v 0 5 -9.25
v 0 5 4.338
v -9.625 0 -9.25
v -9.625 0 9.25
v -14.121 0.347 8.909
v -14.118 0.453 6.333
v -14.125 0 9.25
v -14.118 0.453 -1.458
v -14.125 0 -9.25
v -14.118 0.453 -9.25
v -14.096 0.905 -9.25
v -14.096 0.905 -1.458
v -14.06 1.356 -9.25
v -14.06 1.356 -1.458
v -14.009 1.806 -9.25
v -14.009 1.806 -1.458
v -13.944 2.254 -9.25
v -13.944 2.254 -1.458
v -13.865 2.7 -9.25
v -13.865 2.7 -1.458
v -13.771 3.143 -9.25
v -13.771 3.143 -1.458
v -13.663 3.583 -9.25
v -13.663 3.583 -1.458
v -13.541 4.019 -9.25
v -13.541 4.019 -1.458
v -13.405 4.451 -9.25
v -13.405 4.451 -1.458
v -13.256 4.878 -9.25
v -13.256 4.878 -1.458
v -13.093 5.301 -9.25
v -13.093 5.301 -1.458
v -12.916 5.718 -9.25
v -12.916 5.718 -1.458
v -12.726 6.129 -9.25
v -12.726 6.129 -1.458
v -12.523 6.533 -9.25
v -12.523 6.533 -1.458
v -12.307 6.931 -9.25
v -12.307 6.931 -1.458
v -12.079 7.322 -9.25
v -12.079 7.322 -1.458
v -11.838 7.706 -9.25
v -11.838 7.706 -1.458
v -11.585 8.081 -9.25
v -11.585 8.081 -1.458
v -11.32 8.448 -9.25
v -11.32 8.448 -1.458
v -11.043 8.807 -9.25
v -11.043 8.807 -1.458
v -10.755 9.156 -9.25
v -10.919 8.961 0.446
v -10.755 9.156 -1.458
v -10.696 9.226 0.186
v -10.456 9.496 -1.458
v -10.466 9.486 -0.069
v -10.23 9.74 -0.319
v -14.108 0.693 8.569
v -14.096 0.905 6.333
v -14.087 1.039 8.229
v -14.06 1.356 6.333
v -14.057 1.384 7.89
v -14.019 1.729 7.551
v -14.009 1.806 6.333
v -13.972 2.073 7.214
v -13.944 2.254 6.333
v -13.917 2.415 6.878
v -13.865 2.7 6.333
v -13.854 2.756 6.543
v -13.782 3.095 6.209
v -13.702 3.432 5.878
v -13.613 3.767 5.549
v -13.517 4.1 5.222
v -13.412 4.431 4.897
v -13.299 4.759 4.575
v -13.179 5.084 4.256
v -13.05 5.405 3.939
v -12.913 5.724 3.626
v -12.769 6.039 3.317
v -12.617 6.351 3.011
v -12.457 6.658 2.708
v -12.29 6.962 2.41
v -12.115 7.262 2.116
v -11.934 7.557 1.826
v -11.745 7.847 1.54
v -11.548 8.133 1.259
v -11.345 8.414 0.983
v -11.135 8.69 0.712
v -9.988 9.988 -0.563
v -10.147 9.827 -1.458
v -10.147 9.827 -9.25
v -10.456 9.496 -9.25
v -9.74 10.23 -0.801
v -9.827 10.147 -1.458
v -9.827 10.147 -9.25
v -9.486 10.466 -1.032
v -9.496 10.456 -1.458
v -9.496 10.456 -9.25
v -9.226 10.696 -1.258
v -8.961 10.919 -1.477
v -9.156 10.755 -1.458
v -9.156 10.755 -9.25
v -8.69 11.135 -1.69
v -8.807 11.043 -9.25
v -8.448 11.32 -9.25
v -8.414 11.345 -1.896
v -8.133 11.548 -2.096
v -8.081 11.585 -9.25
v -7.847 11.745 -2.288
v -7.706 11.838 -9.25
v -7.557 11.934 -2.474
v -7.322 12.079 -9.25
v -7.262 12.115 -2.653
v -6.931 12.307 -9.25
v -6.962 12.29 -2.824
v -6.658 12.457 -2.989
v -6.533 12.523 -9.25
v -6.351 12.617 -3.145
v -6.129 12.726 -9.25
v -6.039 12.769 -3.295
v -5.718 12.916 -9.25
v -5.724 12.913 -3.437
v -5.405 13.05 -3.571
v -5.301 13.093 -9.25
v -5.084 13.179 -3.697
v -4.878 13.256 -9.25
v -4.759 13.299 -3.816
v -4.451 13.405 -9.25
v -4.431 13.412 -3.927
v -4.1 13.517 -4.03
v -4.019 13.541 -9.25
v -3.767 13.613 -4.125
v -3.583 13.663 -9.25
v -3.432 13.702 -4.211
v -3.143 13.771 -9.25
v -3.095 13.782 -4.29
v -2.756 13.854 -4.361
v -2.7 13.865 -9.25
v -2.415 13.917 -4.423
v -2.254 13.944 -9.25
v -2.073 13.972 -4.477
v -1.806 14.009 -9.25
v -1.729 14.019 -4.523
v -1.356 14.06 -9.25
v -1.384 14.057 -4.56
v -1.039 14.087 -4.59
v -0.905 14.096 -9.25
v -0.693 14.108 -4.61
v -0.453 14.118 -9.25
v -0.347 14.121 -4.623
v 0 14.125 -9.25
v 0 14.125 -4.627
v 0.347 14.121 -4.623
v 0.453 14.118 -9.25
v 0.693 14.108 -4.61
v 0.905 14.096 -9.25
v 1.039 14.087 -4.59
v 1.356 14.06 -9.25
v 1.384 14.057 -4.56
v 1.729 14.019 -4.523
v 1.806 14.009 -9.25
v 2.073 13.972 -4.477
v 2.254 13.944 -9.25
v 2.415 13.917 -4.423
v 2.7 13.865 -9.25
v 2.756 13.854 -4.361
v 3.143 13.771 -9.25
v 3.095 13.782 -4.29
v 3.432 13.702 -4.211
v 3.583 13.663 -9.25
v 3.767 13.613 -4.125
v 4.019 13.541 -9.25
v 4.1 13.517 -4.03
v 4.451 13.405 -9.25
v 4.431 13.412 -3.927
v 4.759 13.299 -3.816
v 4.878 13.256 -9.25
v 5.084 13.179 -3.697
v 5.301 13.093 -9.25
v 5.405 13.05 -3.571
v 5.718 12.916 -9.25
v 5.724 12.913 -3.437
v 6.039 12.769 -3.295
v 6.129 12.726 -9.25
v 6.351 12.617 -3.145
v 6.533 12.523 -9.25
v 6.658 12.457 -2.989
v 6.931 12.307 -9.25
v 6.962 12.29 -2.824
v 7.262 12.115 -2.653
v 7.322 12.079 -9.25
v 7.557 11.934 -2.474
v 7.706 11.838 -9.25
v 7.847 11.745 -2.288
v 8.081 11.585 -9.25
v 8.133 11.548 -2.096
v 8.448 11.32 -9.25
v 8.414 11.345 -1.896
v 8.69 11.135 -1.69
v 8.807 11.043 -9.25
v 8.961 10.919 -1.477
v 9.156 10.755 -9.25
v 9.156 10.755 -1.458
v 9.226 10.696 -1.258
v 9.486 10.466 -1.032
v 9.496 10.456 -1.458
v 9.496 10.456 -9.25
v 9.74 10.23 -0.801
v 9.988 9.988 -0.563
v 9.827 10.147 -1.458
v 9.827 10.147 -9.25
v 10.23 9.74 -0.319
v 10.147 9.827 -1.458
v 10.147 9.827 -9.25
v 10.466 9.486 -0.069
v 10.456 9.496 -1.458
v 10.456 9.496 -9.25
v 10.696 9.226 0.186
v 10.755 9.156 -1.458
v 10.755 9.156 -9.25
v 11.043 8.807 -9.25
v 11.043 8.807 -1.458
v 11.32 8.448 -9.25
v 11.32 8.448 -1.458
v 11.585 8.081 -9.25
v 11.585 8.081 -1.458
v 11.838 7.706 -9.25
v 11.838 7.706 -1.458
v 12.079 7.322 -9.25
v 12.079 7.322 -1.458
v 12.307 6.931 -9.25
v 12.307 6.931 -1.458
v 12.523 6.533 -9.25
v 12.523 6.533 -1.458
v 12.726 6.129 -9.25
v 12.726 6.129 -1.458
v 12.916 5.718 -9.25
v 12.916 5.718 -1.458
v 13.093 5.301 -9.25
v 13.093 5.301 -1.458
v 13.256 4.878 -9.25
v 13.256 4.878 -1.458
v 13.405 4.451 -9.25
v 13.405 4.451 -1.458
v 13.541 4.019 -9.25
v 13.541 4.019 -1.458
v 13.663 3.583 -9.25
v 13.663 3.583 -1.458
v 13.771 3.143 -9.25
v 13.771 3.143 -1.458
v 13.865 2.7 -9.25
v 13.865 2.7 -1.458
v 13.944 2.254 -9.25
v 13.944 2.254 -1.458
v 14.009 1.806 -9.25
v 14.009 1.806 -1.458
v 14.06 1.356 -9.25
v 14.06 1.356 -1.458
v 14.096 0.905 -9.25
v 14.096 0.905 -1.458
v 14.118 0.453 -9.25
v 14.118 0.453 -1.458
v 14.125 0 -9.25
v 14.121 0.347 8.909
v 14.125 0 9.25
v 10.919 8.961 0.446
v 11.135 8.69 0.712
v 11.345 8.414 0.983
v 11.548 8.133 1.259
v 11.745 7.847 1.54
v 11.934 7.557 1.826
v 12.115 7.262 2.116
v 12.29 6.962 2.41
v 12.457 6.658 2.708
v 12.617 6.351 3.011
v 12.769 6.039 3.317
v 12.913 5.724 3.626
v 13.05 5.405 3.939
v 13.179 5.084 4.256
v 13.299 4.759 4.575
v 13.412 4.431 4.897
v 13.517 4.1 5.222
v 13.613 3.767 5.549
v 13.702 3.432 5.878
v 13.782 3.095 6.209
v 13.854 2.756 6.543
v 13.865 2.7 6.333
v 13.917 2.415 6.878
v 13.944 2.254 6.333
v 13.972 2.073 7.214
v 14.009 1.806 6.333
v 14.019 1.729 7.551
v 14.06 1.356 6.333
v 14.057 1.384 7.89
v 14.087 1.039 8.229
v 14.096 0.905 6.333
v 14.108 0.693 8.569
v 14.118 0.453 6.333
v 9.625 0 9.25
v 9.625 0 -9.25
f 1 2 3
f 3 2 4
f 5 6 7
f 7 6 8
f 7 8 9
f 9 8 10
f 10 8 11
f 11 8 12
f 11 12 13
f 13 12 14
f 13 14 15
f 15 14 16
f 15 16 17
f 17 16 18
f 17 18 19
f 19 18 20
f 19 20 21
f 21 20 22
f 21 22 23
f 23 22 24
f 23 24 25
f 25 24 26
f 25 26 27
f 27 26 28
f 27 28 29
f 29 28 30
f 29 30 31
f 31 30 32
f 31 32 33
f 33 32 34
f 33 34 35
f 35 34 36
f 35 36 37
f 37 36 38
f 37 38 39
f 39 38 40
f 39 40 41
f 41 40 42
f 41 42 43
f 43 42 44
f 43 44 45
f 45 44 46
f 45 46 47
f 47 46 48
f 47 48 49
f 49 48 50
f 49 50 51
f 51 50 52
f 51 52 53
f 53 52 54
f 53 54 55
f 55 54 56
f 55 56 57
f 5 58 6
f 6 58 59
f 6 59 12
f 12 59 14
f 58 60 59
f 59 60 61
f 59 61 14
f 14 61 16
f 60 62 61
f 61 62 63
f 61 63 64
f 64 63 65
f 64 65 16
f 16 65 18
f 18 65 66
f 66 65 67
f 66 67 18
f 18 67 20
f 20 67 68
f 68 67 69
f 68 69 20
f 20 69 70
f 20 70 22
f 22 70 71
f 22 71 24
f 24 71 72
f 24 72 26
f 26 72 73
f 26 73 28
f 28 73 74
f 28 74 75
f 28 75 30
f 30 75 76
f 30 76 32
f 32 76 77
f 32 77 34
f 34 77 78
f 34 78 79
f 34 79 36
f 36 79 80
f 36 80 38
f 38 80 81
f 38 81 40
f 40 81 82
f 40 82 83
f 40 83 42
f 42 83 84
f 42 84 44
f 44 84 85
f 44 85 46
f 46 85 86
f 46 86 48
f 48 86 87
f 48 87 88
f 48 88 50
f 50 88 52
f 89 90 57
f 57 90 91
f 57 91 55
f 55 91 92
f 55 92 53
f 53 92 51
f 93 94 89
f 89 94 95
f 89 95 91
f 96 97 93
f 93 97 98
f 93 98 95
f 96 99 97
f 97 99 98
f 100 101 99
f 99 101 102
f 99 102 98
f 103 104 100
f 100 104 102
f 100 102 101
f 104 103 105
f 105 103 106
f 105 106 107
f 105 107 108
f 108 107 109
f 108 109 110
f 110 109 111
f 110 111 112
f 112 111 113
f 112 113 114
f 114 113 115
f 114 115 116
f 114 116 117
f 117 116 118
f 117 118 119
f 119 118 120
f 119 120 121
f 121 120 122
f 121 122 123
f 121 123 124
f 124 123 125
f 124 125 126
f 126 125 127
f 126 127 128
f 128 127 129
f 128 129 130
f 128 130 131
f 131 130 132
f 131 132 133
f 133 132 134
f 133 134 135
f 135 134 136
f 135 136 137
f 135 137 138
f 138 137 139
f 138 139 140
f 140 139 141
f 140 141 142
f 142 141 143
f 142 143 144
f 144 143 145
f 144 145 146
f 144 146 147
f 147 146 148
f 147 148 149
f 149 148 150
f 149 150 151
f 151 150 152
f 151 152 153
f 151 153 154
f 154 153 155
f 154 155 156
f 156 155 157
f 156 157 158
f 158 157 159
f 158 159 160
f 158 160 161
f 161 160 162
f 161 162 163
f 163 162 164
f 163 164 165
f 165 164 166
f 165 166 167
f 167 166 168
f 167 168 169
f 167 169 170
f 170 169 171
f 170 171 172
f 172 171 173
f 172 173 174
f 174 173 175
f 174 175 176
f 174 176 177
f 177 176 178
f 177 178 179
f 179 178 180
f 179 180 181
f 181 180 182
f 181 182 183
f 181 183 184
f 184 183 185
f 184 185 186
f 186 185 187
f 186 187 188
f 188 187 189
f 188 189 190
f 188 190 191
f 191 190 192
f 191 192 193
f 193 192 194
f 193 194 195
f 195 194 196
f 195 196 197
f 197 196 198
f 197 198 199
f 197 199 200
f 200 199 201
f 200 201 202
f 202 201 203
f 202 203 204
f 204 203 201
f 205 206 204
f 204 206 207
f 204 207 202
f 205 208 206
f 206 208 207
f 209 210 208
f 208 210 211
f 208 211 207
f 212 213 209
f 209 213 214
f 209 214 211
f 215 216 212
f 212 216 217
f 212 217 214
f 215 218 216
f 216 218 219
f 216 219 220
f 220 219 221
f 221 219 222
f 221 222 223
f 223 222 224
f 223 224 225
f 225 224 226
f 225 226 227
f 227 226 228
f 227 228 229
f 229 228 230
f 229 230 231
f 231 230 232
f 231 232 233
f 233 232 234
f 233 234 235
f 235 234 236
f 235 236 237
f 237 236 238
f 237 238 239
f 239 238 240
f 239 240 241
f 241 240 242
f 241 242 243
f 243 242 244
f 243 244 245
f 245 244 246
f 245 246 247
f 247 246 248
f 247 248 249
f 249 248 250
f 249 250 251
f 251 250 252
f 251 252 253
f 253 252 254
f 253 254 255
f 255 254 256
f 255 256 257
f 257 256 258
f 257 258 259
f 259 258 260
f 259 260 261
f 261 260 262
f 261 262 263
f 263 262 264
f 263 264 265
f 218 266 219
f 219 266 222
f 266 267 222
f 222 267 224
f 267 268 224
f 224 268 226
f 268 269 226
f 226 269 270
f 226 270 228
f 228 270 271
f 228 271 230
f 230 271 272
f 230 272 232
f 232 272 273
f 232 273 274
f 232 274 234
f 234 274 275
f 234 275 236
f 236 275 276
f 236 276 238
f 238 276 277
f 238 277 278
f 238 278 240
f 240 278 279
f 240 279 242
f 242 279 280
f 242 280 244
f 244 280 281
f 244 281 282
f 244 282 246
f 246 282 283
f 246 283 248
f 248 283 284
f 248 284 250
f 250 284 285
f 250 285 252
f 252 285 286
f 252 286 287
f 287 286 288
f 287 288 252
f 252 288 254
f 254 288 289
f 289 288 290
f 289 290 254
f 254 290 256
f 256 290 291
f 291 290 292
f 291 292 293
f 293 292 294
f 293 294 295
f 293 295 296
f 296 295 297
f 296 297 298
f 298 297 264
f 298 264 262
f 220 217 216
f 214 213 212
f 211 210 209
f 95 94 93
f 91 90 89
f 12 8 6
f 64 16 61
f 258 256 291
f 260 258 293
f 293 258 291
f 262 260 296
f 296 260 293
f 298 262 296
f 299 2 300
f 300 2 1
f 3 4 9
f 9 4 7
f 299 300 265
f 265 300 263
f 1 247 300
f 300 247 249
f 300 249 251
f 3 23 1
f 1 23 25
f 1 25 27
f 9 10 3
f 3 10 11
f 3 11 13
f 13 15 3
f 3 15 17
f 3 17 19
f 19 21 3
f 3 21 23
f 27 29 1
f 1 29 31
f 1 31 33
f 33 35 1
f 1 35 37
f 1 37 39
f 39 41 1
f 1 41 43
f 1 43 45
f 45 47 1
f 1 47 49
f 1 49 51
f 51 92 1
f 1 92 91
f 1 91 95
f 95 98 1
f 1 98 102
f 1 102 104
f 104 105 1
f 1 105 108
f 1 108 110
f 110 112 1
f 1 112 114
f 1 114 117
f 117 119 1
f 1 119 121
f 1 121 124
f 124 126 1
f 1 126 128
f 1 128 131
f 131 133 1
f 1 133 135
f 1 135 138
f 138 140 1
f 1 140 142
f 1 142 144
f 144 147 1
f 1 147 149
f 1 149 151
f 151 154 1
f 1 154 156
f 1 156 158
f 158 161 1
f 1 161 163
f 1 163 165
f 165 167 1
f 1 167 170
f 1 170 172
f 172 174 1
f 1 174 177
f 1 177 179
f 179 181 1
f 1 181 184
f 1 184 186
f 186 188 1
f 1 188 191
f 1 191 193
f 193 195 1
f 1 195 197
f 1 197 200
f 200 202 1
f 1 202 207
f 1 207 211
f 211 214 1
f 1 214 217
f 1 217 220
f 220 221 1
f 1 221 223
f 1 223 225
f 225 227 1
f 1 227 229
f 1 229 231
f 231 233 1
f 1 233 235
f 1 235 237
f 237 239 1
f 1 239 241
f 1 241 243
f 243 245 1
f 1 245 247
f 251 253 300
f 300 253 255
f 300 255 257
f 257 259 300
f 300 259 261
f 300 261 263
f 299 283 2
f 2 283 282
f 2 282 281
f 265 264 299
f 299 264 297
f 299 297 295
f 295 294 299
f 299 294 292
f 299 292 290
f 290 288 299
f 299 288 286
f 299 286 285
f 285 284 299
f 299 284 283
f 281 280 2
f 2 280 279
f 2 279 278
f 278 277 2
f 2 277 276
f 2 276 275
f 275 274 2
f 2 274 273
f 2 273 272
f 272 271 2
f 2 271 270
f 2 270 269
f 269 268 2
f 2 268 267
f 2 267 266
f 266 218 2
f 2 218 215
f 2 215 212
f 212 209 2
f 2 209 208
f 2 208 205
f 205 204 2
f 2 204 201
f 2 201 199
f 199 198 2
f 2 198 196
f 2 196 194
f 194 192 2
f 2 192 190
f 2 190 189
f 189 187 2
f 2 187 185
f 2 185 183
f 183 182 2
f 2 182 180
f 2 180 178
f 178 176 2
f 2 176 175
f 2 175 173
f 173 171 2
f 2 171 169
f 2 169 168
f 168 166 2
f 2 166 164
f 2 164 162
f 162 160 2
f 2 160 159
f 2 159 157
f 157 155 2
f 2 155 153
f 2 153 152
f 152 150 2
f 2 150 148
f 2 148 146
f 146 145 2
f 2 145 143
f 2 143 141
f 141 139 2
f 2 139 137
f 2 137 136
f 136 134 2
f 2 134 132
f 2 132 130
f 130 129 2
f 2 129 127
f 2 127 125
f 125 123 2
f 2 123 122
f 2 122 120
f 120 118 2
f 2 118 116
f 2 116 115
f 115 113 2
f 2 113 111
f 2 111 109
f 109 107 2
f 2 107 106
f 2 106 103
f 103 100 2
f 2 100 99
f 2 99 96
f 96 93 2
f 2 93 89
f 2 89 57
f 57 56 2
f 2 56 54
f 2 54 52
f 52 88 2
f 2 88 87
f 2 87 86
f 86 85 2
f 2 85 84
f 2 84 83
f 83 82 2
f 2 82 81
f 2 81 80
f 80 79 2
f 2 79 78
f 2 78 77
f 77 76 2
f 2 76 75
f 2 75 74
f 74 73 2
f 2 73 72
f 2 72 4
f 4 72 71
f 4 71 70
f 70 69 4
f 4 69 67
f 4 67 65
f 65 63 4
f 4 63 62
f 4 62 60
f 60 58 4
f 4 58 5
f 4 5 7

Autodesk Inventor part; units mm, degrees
ref_plane "YZ Plane" through (0, 0, 0) normal (1, 0, 0) x (0, 1, 0)
ref_plane "XZ Plane" through (0, 0, 0) normal (0, 1, 0) x (-1, 0, 0)
ref_plane "XY Plane" through (0, 0, 0) normal (0, 0, 1) x (1, 0, 0)
sketch "Sketch1" plane through (0, 0, 0) normal (1, 0, 0) x (0, 1, 0)
  line L0 (0, 0) -> (0, -9.25)
  line L1 (0, 0) -> (0, 9.25)
  line L2 (0, -9.25) -> (14.25, -9.25)
  line L3 (14.25, -9.25) -> (14.25, -4.75)
  line L4 (14.25, -4.75) -> (0, 9.25)
  dimension "d0" = 9.25
  dimension "d1" = 9.25
  dimension "d2" = 14.25
  dimension "d3" = 4.5
sketch "Sketch2" plane through (0, 0, 0) normal (0, 0, 1) x (1, 0, 0)
  line L0 (0, 0) -> (14.125, 0) construction
  line L1 (0, 0) -> (-14.125, 0) construction
  line L2 (-14.125, 0) -> (-9.625, 0)
  line L3 (14.125, 0) -> (9.625, 0)
  arc A0 (14.125, 0) -> (-14.125, 0) centre (0, 0) ccw
  line L4 (0, 0) -> (0, 5) construction
  line L5 (-9.625, 0) -> (0, 5)
  line L6 (0, 5) -> (9.625, 0)
  line L7 (-25, 30) -> (25, 30)
  line L8 (25, 30) -> (25, -20)
  line L9 (25, -20) -> (-25, -20)
  line L10 (-25, -20) -> (-25, 30)
  line L11 (-25, 30) -> (25, -20) construction
  line L12 (25, 30) -> (-25, -20) construction
  dimension "d6" = 4.5
  dimension "d7" = 4.5
  dimension "d8" = 14.125
  dimension "d9" = 5
  dimension "d12" = 50
  dimension "d13" = 50
extrude "Extrusion1" add sketch "Sketch1" along normal mid plane 28.25
extrude "Extrusion2" cut sketch "Sketch2" along normal mid plane 28.25
equation "\"d1\" = d0"
equation "\"d10\" = 2 * d8"
equation "\"d14\" = 2 * d8"
